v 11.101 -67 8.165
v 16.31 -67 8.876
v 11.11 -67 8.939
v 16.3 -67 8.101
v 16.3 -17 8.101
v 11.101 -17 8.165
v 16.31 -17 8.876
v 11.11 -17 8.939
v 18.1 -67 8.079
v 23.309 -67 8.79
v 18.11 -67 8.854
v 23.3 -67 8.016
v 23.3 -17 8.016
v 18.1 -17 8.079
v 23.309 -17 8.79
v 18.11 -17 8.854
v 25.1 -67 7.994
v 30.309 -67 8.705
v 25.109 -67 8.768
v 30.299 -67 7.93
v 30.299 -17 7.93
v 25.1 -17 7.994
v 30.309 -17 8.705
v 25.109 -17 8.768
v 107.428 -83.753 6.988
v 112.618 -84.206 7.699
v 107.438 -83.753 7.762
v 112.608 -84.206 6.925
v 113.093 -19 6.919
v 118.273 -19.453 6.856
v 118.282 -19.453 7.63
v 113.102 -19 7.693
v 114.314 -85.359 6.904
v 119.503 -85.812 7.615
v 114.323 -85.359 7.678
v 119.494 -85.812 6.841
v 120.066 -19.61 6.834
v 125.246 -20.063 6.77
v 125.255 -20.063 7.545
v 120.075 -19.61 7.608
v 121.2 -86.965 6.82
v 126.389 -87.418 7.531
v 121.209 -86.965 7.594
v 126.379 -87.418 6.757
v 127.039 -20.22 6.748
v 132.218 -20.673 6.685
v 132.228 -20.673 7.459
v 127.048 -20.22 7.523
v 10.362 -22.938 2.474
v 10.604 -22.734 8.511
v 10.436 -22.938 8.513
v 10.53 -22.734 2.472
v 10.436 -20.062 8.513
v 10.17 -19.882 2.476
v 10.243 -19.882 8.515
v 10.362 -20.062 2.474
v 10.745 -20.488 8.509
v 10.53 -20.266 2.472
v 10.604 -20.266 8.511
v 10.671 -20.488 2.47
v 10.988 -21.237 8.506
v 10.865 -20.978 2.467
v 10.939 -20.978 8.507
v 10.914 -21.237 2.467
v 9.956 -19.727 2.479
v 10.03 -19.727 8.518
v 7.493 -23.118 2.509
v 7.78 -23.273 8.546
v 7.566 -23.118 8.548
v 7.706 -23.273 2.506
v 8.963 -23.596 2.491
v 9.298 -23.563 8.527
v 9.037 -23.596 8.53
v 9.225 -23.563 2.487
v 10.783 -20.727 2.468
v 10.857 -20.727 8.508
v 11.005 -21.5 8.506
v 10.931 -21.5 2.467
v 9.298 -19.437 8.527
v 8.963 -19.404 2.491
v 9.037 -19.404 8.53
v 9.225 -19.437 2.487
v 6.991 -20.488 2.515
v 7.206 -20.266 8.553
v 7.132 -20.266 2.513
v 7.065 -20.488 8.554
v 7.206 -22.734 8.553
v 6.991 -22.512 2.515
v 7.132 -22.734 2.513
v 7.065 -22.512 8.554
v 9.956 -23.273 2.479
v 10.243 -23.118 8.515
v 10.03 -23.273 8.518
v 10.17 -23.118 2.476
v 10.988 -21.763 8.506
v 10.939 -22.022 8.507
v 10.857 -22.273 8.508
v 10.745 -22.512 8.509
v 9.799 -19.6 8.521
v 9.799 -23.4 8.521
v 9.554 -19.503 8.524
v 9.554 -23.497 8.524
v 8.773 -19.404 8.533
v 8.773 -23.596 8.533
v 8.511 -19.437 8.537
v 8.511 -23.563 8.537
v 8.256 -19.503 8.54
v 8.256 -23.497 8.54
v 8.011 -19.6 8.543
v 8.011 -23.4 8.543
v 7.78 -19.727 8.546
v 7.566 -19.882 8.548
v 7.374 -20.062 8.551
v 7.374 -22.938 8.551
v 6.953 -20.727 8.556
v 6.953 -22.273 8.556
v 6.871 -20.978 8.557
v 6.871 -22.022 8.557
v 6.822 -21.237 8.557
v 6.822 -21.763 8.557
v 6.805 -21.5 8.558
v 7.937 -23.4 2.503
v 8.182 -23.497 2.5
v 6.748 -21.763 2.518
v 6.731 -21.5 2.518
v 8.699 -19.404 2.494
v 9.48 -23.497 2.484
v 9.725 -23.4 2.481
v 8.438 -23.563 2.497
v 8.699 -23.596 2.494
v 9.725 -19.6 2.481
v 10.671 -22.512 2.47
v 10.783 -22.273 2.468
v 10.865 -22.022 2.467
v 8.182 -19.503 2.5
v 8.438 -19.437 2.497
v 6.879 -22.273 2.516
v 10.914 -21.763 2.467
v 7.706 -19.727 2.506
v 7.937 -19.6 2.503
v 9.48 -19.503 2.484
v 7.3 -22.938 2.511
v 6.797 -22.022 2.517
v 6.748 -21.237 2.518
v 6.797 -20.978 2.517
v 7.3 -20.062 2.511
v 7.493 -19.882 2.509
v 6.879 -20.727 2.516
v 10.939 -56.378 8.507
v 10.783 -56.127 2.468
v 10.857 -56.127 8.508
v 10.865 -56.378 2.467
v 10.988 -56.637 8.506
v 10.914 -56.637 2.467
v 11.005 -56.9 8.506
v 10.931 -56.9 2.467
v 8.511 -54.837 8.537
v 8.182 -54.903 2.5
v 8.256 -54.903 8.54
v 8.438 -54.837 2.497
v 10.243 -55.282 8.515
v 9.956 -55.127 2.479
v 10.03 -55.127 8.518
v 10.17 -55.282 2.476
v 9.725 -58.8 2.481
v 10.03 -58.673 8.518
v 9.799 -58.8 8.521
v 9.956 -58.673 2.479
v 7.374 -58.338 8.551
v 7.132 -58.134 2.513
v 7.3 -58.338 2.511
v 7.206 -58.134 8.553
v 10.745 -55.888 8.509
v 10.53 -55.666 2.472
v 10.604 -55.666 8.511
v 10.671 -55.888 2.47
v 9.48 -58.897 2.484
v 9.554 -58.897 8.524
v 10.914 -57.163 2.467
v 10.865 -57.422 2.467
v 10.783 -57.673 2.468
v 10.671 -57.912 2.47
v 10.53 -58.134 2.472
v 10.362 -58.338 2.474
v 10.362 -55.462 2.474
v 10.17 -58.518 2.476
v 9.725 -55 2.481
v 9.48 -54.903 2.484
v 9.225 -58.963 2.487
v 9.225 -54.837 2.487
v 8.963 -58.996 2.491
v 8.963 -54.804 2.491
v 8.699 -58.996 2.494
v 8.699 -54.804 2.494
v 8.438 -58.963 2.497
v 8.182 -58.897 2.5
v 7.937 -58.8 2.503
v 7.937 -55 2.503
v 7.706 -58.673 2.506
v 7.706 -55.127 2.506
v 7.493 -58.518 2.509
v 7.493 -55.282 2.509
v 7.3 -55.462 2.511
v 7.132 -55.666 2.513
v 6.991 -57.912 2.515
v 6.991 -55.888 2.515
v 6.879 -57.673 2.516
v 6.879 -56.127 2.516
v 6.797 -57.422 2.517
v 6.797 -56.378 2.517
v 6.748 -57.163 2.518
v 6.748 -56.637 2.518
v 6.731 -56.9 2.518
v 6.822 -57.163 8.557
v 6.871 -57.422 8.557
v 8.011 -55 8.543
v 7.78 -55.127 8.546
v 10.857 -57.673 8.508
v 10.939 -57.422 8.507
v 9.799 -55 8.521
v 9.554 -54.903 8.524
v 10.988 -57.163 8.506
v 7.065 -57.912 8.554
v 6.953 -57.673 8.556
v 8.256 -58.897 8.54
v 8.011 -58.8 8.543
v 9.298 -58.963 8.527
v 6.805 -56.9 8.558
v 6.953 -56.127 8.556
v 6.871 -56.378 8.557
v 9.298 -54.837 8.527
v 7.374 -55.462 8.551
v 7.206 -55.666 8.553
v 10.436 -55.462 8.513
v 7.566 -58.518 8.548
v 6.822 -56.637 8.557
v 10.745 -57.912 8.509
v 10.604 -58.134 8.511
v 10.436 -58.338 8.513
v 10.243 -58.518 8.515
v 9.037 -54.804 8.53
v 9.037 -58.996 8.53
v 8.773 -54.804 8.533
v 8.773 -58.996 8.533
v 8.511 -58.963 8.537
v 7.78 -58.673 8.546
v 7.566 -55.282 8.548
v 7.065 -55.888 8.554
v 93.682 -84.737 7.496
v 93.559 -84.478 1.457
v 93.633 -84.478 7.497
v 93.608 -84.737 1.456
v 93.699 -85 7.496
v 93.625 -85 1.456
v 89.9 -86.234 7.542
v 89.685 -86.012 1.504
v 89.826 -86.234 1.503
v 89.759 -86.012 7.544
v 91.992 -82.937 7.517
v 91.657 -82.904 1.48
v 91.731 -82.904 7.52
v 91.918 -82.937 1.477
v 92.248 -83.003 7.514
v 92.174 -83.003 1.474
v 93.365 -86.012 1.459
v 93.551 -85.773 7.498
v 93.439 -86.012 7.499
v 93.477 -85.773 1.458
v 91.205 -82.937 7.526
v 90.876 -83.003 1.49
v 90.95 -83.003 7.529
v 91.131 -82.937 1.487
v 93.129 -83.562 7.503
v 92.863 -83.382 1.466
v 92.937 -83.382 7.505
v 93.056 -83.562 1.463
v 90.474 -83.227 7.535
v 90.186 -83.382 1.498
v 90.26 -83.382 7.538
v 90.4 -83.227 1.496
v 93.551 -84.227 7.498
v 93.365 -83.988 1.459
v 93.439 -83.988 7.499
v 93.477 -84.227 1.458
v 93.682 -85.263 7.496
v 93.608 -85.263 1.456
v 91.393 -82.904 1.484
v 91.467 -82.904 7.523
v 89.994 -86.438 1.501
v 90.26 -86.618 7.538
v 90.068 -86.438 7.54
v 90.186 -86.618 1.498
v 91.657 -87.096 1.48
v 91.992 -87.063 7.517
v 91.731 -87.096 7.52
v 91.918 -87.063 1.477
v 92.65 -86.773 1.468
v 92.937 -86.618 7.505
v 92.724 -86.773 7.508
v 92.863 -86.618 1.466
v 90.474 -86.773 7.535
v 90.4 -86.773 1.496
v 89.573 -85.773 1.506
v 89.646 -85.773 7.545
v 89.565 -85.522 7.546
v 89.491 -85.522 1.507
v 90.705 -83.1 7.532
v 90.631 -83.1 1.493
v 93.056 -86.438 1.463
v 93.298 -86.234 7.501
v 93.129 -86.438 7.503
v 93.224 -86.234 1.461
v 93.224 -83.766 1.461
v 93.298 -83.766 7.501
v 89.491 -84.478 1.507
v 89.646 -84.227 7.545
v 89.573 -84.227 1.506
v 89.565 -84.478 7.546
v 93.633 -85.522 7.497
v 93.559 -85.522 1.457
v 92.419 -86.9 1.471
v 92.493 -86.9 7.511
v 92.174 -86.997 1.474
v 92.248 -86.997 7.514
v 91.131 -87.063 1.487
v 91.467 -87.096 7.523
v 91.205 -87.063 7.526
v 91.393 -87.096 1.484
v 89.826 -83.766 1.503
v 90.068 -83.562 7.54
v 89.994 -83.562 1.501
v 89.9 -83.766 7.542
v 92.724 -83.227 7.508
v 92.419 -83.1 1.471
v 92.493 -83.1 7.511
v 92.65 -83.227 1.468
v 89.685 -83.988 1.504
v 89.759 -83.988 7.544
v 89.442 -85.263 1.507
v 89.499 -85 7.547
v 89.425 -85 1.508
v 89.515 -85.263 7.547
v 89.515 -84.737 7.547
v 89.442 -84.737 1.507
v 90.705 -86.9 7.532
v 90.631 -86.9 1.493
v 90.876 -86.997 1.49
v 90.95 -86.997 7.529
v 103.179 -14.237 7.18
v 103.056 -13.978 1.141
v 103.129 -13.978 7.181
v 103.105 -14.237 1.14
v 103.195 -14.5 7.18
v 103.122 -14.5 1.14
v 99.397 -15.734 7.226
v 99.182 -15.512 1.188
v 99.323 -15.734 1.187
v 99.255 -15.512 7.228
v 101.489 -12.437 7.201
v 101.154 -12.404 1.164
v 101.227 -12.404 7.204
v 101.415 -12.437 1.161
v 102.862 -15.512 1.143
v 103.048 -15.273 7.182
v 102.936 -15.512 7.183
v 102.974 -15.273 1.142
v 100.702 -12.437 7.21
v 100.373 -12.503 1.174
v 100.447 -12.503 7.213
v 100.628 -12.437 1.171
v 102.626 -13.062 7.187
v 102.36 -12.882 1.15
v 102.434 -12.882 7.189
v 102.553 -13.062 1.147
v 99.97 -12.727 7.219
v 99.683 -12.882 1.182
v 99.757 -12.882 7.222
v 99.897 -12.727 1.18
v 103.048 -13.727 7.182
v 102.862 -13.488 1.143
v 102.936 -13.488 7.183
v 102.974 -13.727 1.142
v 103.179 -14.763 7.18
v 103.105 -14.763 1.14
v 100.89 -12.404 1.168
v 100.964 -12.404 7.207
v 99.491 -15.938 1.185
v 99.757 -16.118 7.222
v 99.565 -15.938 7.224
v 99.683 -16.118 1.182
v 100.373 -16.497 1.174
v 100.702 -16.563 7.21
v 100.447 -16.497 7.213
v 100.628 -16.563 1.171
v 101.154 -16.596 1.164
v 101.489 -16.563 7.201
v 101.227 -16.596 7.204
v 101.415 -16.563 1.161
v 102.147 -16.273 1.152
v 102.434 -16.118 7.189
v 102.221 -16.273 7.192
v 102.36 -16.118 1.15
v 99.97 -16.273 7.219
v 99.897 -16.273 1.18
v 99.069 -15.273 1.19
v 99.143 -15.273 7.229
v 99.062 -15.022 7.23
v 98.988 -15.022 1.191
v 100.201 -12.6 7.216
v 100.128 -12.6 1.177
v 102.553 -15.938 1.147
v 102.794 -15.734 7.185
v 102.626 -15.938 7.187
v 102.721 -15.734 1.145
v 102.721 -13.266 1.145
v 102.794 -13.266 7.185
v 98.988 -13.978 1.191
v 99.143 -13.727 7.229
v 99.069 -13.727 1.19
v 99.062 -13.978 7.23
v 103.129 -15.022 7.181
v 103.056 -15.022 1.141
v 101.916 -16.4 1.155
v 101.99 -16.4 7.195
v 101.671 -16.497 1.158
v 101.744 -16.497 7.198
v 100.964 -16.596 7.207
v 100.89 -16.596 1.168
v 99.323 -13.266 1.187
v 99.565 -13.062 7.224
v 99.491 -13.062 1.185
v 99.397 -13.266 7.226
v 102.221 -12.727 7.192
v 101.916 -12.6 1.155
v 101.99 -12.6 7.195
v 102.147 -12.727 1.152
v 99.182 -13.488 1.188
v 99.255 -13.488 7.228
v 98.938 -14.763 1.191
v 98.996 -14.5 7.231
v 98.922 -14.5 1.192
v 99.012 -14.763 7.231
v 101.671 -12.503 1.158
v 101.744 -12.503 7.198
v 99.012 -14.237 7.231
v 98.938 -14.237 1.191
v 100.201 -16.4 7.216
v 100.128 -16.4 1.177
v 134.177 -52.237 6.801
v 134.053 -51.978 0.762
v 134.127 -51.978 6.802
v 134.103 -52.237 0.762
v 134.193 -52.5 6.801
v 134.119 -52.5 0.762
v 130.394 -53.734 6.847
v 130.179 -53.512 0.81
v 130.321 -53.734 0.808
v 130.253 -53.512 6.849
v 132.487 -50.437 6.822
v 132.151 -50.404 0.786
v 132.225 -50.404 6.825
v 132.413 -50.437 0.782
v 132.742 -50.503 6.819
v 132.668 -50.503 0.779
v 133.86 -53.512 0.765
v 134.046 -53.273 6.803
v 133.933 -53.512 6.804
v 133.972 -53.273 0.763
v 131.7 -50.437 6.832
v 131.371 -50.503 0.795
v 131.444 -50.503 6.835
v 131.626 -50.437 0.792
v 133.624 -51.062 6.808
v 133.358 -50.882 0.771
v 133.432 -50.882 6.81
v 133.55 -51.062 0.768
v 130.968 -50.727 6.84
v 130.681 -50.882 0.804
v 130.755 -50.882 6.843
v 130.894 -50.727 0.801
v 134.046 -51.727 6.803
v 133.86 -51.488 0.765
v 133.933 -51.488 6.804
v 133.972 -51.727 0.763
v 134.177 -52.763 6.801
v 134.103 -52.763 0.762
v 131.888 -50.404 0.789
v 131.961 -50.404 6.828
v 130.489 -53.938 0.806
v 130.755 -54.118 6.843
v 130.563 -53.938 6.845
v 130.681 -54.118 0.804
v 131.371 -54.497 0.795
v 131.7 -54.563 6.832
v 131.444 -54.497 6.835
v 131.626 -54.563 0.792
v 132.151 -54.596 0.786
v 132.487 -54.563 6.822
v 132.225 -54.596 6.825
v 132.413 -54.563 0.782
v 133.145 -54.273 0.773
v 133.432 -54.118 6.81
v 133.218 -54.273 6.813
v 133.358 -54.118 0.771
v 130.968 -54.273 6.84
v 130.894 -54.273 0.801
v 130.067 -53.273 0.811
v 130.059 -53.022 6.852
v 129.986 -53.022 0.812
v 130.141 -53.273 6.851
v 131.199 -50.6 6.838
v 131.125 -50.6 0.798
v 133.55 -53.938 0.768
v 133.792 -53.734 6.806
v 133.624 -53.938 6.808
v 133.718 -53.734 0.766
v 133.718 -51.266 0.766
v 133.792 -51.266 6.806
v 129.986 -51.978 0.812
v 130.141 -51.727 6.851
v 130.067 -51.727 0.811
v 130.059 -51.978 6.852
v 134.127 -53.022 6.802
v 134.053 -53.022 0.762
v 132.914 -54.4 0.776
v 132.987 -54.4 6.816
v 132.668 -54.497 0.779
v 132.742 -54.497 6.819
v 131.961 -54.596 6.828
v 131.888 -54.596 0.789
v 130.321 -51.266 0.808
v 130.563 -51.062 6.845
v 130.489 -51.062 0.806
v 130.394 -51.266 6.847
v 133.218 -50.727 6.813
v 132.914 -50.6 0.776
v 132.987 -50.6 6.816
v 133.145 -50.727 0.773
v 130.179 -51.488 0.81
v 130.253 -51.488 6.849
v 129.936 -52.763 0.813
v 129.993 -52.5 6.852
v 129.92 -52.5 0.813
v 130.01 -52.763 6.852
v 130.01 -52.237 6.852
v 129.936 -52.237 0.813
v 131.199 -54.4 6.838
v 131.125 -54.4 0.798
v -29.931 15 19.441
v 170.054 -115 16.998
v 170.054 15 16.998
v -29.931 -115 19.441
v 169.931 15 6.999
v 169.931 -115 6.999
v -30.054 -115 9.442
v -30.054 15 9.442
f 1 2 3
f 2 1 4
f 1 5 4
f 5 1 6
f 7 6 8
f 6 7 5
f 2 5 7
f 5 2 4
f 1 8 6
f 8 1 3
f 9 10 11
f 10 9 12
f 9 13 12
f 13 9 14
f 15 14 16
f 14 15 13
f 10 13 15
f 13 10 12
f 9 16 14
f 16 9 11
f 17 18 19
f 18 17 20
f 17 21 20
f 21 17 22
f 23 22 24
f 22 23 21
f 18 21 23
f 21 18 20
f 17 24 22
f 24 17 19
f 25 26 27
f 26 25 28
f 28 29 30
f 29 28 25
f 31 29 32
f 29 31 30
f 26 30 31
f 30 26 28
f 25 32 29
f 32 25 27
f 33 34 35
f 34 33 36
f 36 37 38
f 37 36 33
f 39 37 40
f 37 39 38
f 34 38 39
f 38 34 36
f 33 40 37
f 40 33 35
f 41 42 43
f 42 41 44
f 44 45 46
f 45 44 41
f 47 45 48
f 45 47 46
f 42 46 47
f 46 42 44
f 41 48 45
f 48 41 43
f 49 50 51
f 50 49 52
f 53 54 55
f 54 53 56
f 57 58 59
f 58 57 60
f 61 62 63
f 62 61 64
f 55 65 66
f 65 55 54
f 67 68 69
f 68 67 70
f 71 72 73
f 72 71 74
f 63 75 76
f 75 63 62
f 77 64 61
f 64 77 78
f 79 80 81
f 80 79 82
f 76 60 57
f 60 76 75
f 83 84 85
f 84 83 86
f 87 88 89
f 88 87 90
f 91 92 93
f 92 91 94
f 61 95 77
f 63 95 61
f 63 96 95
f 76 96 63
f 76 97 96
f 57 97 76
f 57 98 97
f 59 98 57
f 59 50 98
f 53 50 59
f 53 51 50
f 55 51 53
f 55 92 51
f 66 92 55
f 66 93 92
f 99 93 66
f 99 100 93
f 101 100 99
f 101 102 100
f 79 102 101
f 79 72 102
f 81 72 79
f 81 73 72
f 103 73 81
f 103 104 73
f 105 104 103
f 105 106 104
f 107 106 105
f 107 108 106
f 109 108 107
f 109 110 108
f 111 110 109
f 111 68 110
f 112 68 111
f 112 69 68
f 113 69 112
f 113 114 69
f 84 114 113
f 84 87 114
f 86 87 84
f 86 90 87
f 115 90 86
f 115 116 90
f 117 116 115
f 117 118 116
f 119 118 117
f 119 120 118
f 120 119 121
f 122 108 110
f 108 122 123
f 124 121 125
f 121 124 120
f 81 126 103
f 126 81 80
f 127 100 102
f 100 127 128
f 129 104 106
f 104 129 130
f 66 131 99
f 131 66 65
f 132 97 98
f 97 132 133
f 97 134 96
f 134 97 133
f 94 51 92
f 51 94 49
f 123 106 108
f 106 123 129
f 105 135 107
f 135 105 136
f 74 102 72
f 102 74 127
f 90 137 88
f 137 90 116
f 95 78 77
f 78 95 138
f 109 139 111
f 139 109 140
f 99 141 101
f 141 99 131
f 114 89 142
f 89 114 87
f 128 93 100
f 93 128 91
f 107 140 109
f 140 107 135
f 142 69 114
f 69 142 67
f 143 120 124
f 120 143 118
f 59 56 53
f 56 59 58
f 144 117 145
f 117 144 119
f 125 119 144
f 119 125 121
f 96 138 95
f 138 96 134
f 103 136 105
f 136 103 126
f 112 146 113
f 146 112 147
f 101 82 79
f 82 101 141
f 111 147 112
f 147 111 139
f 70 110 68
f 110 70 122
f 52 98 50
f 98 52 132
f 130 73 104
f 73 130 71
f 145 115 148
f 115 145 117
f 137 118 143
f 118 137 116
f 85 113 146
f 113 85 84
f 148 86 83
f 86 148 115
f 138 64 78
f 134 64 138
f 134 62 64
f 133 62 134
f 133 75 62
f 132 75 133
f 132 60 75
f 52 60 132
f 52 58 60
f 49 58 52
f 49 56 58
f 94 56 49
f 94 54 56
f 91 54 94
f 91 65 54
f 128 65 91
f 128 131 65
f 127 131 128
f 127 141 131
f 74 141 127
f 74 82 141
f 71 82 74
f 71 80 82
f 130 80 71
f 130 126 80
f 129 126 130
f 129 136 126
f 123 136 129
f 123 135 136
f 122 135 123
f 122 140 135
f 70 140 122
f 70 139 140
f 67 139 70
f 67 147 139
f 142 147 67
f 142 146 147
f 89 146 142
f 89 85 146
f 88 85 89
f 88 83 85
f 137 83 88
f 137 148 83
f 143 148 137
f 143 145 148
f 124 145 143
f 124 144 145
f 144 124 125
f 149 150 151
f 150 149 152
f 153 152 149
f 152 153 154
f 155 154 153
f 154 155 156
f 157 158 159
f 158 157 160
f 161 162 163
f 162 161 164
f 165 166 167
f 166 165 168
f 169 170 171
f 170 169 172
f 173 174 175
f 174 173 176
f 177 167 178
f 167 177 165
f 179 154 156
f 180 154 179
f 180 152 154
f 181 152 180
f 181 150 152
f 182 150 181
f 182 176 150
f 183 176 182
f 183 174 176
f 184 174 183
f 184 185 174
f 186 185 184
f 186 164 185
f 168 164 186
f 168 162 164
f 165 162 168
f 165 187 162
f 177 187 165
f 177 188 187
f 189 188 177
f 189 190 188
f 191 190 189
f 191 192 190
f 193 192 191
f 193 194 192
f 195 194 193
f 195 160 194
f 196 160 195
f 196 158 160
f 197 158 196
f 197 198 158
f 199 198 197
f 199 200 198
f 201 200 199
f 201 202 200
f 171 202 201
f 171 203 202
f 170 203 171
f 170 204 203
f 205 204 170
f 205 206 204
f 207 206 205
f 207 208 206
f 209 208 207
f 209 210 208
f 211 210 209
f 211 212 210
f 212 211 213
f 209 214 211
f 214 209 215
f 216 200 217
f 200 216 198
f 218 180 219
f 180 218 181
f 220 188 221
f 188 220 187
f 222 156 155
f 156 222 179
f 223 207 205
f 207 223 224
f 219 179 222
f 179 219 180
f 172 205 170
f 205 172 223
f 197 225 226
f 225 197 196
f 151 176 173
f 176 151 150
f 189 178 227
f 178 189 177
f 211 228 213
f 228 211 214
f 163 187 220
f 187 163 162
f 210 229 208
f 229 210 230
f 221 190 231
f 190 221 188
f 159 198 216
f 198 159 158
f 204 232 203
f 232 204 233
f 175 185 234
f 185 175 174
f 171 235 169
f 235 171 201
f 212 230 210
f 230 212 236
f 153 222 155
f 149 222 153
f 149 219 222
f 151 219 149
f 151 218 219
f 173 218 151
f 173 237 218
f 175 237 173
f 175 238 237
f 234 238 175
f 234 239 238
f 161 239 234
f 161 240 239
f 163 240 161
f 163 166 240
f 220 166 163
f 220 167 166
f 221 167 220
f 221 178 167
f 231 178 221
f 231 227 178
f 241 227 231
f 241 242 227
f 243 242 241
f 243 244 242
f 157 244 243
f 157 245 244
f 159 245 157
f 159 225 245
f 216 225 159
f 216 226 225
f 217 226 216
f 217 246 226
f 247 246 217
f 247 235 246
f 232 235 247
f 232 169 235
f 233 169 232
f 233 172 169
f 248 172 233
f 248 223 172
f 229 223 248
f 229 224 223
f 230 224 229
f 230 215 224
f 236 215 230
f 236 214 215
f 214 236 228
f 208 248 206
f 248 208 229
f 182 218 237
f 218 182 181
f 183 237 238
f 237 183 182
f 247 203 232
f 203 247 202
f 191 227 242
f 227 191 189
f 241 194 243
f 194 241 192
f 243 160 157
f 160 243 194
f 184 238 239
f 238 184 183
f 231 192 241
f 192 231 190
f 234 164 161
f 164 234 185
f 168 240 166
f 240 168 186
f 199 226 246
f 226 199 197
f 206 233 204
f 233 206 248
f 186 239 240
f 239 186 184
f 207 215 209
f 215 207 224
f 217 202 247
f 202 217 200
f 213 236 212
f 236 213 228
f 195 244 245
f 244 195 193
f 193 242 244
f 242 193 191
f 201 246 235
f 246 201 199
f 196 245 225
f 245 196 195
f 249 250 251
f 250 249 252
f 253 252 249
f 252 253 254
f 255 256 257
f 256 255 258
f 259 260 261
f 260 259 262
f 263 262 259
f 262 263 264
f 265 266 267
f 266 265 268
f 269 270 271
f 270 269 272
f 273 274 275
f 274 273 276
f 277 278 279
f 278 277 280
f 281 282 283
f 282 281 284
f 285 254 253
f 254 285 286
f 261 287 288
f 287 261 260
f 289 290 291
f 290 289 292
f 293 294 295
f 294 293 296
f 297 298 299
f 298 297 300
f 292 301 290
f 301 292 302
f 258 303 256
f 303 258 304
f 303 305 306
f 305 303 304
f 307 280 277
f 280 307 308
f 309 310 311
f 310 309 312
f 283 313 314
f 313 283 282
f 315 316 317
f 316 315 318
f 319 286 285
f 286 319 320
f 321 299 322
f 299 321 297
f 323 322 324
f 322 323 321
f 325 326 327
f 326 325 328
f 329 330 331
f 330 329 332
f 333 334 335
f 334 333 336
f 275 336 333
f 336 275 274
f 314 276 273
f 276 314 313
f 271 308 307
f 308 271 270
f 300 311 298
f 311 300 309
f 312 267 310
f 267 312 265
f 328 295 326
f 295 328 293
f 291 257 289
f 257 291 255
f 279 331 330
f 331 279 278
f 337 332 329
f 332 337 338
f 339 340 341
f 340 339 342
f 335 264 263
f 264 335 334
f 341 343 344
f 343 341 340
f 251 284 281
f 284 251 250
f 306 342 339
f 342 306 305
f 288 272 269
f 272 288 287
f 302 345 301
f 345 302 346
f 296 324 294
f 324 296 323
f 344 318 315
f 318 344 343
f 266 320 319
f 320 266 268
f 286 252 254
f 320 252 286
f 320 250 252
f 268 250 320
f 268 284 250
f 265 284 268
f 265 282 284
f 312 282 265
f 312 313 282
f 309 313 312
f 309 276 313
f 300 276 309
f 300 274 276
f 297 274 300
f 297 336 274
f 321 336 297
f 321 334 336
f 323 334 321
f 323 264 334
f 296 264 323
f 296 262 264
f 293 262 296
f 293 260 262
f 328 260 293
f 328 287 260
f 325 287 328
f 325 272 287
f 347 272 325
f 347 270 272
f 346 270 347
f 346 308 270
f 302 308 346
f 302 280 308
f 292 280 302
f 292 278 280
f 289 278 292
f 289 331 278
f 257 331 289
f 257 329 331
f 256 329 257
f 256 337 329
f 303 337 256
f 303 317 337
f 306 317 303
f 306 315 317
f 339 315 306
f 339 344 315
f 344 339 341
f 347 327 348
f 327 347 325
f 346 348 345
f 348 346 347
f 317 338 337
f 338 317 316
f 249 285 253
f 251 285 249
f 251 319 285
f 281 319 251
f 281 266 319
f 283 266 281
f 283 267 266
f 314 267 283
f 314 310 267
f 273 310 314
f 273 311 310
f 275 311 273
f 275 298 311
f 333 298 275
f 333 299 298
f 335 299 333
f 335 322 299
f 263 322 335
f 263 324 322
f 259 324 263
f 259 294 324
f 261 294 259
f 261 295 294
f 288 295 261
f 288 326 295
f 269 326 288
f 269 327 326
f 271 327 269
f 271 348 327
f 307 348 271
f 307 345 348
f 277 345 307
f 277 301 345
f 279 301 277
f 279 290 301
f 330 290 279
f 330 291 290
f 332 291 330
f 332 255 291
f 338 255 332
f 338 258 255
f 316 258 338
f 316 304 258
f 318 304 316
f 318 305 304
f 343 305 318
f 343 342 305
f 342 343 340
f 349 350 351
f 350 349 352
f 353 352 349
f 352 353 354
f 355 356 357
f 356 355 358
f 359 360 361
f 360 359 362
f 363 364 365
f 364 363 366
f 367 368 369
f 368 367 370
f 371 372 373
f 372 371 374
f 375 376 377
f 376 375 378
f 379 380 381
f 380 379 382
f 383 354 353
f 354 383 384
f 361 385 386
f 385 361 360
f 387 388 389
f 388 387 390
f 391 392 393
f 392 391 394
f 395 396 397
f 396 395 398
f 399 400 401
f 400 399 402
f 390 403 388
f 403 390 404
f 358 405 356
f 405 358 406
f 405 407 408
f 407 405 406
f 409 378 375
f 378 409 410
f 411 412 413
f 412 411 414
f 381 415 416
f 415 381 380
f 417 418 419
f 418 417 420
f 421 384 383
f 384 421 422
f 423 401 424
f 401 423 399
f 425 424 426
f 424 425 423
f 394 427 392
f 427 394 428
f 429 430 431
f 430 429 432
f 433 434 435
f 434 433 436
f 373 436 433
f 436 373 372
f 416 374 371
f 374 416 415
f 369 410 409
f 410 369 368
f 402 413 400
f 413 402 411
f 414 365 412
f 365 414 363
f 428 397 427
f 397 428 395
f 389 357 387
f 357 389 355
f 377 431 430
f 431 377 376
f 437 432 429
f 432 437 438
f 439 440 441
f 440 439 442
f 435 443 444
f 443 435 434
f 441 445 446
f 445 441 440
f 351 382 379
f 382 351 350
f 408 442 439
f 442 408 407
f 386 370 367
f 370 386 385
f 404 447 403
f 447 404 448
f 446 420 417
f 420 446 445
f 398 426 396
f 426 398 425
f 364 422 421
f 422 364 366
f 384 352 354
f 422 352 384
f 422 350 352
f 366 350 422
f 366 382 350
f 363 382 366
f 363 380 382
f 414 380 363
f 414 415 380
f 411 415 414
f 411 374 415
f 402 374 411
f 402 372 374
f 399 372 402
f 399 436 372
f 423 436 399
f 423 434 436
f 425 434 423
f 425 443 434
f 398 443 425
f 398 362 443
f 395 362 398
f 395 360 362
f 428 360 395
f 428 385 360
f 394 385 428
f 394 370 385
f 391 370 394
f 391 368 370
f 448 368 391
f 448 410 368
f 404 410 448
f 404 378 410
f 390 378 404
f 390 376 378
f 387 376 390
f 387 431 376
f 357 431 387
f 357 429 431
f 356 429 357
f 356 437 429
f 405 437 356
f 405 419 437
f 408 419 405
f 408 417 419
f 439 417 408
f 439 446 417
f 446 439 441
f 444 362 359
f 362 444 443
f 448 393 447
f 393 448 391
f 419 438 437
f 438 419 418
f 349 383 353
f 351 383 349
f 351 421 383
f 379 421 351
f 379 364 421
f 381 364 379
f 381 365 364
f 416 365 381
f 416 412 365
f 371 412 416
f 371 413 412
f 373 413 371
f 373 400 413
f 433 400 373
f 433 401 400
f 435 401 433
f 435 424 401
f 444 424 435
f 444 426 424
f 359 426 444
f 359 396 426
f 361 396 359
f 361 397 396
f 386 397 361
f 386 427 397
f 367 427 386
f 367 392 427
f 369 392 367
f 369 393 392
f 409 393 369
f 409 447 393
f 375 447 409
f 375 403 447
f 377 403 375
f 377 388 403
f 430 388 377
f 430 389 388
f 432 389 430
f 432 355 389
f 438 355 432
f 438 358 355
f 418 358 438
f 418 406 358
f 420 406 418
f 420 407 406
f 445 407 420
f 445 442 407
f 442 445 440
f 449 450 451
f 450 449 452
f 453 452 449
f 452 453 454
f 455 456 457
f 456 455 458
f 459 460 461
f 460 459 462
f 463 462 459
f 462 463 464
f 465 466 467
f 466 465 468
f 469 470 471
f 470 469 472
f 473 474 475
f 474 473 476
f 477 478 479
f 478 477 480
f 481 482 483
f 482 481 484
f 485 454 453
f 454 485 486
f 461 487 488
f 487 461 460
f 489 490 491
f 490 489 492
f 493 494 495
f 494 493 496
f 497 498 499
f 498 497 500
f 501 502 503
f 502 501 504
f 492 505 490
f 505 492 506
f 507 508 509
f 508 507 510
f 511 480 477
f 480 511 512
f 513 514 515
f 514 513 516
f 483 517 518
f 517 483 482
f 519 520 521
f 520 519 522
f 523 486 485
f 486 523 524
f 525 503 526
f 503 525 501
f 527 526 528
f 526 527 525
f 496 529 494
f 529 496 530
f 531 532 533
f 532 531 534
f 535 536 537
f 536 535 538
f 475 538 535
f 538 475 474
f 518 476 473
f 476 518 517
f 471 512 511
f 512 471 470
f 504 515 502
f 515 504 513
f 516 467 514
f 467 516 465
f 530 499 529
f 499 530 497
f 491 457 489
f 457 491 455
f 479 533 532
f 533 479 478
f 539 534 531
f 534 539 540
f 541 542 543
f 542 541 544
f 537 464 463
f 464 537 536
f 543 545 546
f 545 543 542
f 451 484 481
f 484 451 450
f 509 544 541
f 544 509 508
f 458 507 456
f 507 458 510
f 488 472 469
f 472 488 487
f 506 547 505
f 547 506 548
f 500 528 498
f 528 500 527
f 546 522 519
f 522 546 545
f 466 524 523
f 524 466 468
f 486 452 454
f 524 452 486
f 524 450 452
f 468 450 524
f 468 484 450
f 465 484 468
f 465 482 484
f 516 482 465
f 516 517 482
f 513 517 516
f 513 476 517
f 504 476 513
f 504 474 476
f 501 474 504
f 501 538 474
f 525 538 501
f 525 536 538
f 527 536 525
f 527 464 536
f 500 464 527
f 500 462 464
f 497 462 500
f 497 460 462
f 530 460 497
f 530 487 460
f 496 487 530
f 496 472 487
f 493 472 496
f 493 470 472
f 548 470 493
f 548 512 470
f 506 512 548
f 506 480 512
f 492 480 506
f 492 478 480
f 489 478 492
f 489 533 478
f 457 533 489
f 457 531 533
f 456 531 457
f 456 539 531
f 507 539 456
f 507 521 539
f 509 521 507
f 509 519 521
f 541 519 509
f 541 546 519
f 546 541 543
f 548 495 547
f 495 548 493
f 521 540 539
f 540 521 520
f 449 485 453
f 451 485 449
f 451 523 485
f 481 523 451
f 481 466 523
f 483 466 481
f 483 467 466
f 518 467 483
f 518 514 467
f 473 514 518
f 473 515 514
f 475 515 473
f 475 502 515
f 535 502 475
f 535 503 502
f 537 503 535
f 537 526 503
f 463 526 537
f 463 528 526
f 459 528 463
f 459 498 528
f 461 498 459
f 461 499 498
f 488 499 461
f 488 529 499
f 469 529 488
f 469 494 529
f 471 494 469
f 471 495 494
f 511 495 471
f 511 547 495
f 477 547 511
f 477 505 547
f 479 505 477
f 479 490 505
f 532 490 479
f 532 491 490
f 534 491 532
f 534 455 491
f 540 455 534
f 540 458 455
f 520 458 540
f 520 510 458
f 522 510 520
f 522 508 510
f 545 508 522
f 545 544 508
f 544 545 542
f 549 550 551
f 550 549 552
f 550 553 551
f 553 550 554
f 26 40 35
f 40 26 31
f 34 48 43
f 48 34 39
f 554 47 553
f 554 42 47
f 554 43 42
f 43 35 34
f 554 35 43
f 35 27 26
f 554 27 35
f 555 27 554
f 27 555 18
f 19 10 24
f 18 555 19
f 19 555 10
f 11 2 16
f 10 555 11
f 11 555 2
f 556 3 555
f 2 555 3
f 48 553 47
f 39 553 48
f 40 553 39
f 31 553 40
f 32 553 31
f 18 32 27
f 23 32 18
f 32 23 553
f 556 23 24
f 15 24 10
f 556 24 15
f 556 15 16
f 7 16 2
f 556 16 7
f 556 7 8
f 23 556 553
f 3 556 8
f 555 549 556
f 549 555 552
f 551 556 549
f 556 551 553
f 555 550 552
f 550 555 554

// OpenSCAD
// file: corne_body_models.scad
$fn = 50;

/**
  * Corne Chocoflan case body with stands and magnet holes
  * 
  * Based on corne_chocoflan_basic.stl
  * 
  * todo: 
  * - move two stands 0.5mm up
  * - make magnet holes
  *  
  */

magnet_radius = 4 / 2 + 0.1;

magnet1_pos = [8.8, -21.5, 9.4];
magnet2_pos = [8.8, -56.9, 9.4];
magnet3_pos = [91.5, -85.0, 9.4];
magnet4_pos = [101, -14.5, 9.2];
magnet5_pos = [132, -52.5, 9.2];

cuts_rotation = [0, 0.7, 0];
rubber_width = 5.2;

module magnets_holders() {

  rotate(cuts_rotation) {

    translate(magnet1_pos)
      cylinder(h=2.14, r=magnet_radius + 0.5);

    translate(magnet2_pos)
      cylinder(h=2.14, r=magnet_radius + 0.5);

    translate(magnet3_pos)
      cylinder(h=2.14, r=magnet_radius + 0.5);

    translate(magnet4_pos)
      cylinder(h=2.14, r=magnet_radius + 0.5);

    translate(magnet5_pos)
      cylinder(h=2.14, r=magnet_radius + 0.5);
  }
}

module magnets() {

  rotate(cuts_rotation) {
    translate(magnet1_pos)
      cylinder(h=4.04, r=magnet_radius);

    translate(magnet2_pos)
      cylinder(h=4.04, r=magnet_radius);

    translate(magnet3_pos)
      cylinder(h=4.04, r=magnet_radius);

    translate(magnet4_pos)
      cylinder(h=4.04, r=magnet_radius);

    translate(magnet5_pos)
      cylinder(h=4.04, r=magnet_radius);      
  }
}

module body() {
  difference() {

    union() {
      import("corne_chocoflan_basic.stl");
      thicknessCubes();
      innerStands();

      magnets_holders();
    }
    //import("corne_chocoflan_basic.stl");

    magnets();

    rotate(cuts_rotation)
      linearCutsV2();

    // standCuts();
    //cube([25,250,100], center=true);
  }
}

//rotate([0,1,0])
//linearCuts();

//translate([8.1,-16.1, 8.5]) 
//rotate([0,0.6,0]) 
//  cube([150,150,0.5]);

module stand() {
  difference() {
    union() {
      cylinder(h=3, r=1.8);
      cylinder(h=2, r1=4.5, r2=4);
    }
    cylinder(h=4, r=1);
  }
}

module innerStands1() {
  //cube([18.5,18.5,2]);
  translate([18.5, 0, 0])
    stand();
}

module innerStands2() {
  //cube([18.5,19,2]);
  translate([18.5, 19, 0])
    stand();
}

module innerStands3() {
  //cube([94.75,17,2]);
  translate([94.75, 0, 0])
    stand();
}

module innerStands4() {
  //cube([23.5,64.5,2]);
  translate([0, 0, 0])
    stand();
}

module innerStands() {
  translate([6.1, -32.6, 9.427])
    innerStands1();

  translate([6.1, -70.5, 9.427])
    innerStands2();

  translate([6.0, -29.2, 9.427])
    innerStands3();

  translate([114.4, -77.0, 9.427])
    innerStands4();
}

module bottomCube2() {
  //cube([3,3,1]);
  translate([0, -6, 0])
    cube([38, 6, 1.5]);
}

module bottomCube1() {
  //cube([10,10,1]);
  translate([0, 2, 0])
    cube([38, 52, 1]);
}

module thicknessCubes() {
  rotate(cuts_rotation)
    translate([6, -70, 9.3])
      bottomCube1();

  //translate([6, -18, 9.2])
  //bottomCube2();
}

module standCut() {
  cylinder(h=1, r=3, center=true);
  difference() {
    cylinder(h=1, r=5.5, center=true);
    cylinder(h=3, r=3.5, center=true);
  }
}

module linearCut() {
  cube([30, 1.6, 1.6]);
  translate([0, 1.6 * 2, 0])
    cube([30, 1.6, 1.6]);
}

module linearCuts() {

  depth = 8.3;

  translate([12, -23.5, depth])
    linearCut();

  translate([12, -59.5, depth])
    linearCut();

  translate([95, -80, depth])
    rotate([0, 0, -15])
      linearCut();

  translate([100, -25.5, depth])
    linearCut();
}

module linearCutV2() {
  cube([50, rubber_width, 1.8]);
  translate([0, 7, 0])
    cube([50, rubber_width, 1.8]);
  translate([0, 14, 0])
    cube([50, rubber_width, 1.8]);
}

module linearCutV2_long() {
  cube([65, rubber_width, 1.8]);
  translate([0, 7, 0])
    cube([66, rubber_width, 1.8]);
  translate([0, 14, 0])
    cube([67, rubber_width, 1.8]);
}

module linearCutsV2() {

  depth = 8.3;

  translate([11, -17, depth])
    rotate([0, 0, -90])
      linearCutV2();

  translate([113, -19, depth])
    rotate([0, 0, -95])
      linearCutV2_long();
}

//rotate(cuts_rotation)
//linearCutsV2();

module standCuts() {
  zoffset = 9;
  translate([24.5, -52, zoffset]) standCut();
  translate([24.5, -32.5, zoffset]) standCut();

  translate([120, -84, zoffset]) standCut();
  translate([130, -25, zoffset]) standCut();
}

module body_solid() {

  union() {
    //import("corne_shape.stl");

    translate([70, -50, 13.22])
      rotate(cuts_rotation)
        cube([200, 130, 10], center=true);

    rotate(cuts_rotation)
      linearCutsV2();

    rotate(cuts_rotation)
      translate([0, 0, -6.8]) {
        translate(magnet1_pos)
          cylinder(h=6.04, r=magnet_radius);

        translate(magnet2_pos)
          cylinder(h=6.04, r=magnet_radius);

        translate(magnet3_pos)
          cylinder(h=6.04, r=magnet_radius);

        translate(magnet4_pos)
          cylinder(h=6.04, r=magnet_radius);

        translate(magnet5_pos)
          cylinder(h=6.04, r=magnet_radius);          
      }
  }
}
// main file
include <corne_body_models.scad>;


// corne shape with stands
body_solid();
